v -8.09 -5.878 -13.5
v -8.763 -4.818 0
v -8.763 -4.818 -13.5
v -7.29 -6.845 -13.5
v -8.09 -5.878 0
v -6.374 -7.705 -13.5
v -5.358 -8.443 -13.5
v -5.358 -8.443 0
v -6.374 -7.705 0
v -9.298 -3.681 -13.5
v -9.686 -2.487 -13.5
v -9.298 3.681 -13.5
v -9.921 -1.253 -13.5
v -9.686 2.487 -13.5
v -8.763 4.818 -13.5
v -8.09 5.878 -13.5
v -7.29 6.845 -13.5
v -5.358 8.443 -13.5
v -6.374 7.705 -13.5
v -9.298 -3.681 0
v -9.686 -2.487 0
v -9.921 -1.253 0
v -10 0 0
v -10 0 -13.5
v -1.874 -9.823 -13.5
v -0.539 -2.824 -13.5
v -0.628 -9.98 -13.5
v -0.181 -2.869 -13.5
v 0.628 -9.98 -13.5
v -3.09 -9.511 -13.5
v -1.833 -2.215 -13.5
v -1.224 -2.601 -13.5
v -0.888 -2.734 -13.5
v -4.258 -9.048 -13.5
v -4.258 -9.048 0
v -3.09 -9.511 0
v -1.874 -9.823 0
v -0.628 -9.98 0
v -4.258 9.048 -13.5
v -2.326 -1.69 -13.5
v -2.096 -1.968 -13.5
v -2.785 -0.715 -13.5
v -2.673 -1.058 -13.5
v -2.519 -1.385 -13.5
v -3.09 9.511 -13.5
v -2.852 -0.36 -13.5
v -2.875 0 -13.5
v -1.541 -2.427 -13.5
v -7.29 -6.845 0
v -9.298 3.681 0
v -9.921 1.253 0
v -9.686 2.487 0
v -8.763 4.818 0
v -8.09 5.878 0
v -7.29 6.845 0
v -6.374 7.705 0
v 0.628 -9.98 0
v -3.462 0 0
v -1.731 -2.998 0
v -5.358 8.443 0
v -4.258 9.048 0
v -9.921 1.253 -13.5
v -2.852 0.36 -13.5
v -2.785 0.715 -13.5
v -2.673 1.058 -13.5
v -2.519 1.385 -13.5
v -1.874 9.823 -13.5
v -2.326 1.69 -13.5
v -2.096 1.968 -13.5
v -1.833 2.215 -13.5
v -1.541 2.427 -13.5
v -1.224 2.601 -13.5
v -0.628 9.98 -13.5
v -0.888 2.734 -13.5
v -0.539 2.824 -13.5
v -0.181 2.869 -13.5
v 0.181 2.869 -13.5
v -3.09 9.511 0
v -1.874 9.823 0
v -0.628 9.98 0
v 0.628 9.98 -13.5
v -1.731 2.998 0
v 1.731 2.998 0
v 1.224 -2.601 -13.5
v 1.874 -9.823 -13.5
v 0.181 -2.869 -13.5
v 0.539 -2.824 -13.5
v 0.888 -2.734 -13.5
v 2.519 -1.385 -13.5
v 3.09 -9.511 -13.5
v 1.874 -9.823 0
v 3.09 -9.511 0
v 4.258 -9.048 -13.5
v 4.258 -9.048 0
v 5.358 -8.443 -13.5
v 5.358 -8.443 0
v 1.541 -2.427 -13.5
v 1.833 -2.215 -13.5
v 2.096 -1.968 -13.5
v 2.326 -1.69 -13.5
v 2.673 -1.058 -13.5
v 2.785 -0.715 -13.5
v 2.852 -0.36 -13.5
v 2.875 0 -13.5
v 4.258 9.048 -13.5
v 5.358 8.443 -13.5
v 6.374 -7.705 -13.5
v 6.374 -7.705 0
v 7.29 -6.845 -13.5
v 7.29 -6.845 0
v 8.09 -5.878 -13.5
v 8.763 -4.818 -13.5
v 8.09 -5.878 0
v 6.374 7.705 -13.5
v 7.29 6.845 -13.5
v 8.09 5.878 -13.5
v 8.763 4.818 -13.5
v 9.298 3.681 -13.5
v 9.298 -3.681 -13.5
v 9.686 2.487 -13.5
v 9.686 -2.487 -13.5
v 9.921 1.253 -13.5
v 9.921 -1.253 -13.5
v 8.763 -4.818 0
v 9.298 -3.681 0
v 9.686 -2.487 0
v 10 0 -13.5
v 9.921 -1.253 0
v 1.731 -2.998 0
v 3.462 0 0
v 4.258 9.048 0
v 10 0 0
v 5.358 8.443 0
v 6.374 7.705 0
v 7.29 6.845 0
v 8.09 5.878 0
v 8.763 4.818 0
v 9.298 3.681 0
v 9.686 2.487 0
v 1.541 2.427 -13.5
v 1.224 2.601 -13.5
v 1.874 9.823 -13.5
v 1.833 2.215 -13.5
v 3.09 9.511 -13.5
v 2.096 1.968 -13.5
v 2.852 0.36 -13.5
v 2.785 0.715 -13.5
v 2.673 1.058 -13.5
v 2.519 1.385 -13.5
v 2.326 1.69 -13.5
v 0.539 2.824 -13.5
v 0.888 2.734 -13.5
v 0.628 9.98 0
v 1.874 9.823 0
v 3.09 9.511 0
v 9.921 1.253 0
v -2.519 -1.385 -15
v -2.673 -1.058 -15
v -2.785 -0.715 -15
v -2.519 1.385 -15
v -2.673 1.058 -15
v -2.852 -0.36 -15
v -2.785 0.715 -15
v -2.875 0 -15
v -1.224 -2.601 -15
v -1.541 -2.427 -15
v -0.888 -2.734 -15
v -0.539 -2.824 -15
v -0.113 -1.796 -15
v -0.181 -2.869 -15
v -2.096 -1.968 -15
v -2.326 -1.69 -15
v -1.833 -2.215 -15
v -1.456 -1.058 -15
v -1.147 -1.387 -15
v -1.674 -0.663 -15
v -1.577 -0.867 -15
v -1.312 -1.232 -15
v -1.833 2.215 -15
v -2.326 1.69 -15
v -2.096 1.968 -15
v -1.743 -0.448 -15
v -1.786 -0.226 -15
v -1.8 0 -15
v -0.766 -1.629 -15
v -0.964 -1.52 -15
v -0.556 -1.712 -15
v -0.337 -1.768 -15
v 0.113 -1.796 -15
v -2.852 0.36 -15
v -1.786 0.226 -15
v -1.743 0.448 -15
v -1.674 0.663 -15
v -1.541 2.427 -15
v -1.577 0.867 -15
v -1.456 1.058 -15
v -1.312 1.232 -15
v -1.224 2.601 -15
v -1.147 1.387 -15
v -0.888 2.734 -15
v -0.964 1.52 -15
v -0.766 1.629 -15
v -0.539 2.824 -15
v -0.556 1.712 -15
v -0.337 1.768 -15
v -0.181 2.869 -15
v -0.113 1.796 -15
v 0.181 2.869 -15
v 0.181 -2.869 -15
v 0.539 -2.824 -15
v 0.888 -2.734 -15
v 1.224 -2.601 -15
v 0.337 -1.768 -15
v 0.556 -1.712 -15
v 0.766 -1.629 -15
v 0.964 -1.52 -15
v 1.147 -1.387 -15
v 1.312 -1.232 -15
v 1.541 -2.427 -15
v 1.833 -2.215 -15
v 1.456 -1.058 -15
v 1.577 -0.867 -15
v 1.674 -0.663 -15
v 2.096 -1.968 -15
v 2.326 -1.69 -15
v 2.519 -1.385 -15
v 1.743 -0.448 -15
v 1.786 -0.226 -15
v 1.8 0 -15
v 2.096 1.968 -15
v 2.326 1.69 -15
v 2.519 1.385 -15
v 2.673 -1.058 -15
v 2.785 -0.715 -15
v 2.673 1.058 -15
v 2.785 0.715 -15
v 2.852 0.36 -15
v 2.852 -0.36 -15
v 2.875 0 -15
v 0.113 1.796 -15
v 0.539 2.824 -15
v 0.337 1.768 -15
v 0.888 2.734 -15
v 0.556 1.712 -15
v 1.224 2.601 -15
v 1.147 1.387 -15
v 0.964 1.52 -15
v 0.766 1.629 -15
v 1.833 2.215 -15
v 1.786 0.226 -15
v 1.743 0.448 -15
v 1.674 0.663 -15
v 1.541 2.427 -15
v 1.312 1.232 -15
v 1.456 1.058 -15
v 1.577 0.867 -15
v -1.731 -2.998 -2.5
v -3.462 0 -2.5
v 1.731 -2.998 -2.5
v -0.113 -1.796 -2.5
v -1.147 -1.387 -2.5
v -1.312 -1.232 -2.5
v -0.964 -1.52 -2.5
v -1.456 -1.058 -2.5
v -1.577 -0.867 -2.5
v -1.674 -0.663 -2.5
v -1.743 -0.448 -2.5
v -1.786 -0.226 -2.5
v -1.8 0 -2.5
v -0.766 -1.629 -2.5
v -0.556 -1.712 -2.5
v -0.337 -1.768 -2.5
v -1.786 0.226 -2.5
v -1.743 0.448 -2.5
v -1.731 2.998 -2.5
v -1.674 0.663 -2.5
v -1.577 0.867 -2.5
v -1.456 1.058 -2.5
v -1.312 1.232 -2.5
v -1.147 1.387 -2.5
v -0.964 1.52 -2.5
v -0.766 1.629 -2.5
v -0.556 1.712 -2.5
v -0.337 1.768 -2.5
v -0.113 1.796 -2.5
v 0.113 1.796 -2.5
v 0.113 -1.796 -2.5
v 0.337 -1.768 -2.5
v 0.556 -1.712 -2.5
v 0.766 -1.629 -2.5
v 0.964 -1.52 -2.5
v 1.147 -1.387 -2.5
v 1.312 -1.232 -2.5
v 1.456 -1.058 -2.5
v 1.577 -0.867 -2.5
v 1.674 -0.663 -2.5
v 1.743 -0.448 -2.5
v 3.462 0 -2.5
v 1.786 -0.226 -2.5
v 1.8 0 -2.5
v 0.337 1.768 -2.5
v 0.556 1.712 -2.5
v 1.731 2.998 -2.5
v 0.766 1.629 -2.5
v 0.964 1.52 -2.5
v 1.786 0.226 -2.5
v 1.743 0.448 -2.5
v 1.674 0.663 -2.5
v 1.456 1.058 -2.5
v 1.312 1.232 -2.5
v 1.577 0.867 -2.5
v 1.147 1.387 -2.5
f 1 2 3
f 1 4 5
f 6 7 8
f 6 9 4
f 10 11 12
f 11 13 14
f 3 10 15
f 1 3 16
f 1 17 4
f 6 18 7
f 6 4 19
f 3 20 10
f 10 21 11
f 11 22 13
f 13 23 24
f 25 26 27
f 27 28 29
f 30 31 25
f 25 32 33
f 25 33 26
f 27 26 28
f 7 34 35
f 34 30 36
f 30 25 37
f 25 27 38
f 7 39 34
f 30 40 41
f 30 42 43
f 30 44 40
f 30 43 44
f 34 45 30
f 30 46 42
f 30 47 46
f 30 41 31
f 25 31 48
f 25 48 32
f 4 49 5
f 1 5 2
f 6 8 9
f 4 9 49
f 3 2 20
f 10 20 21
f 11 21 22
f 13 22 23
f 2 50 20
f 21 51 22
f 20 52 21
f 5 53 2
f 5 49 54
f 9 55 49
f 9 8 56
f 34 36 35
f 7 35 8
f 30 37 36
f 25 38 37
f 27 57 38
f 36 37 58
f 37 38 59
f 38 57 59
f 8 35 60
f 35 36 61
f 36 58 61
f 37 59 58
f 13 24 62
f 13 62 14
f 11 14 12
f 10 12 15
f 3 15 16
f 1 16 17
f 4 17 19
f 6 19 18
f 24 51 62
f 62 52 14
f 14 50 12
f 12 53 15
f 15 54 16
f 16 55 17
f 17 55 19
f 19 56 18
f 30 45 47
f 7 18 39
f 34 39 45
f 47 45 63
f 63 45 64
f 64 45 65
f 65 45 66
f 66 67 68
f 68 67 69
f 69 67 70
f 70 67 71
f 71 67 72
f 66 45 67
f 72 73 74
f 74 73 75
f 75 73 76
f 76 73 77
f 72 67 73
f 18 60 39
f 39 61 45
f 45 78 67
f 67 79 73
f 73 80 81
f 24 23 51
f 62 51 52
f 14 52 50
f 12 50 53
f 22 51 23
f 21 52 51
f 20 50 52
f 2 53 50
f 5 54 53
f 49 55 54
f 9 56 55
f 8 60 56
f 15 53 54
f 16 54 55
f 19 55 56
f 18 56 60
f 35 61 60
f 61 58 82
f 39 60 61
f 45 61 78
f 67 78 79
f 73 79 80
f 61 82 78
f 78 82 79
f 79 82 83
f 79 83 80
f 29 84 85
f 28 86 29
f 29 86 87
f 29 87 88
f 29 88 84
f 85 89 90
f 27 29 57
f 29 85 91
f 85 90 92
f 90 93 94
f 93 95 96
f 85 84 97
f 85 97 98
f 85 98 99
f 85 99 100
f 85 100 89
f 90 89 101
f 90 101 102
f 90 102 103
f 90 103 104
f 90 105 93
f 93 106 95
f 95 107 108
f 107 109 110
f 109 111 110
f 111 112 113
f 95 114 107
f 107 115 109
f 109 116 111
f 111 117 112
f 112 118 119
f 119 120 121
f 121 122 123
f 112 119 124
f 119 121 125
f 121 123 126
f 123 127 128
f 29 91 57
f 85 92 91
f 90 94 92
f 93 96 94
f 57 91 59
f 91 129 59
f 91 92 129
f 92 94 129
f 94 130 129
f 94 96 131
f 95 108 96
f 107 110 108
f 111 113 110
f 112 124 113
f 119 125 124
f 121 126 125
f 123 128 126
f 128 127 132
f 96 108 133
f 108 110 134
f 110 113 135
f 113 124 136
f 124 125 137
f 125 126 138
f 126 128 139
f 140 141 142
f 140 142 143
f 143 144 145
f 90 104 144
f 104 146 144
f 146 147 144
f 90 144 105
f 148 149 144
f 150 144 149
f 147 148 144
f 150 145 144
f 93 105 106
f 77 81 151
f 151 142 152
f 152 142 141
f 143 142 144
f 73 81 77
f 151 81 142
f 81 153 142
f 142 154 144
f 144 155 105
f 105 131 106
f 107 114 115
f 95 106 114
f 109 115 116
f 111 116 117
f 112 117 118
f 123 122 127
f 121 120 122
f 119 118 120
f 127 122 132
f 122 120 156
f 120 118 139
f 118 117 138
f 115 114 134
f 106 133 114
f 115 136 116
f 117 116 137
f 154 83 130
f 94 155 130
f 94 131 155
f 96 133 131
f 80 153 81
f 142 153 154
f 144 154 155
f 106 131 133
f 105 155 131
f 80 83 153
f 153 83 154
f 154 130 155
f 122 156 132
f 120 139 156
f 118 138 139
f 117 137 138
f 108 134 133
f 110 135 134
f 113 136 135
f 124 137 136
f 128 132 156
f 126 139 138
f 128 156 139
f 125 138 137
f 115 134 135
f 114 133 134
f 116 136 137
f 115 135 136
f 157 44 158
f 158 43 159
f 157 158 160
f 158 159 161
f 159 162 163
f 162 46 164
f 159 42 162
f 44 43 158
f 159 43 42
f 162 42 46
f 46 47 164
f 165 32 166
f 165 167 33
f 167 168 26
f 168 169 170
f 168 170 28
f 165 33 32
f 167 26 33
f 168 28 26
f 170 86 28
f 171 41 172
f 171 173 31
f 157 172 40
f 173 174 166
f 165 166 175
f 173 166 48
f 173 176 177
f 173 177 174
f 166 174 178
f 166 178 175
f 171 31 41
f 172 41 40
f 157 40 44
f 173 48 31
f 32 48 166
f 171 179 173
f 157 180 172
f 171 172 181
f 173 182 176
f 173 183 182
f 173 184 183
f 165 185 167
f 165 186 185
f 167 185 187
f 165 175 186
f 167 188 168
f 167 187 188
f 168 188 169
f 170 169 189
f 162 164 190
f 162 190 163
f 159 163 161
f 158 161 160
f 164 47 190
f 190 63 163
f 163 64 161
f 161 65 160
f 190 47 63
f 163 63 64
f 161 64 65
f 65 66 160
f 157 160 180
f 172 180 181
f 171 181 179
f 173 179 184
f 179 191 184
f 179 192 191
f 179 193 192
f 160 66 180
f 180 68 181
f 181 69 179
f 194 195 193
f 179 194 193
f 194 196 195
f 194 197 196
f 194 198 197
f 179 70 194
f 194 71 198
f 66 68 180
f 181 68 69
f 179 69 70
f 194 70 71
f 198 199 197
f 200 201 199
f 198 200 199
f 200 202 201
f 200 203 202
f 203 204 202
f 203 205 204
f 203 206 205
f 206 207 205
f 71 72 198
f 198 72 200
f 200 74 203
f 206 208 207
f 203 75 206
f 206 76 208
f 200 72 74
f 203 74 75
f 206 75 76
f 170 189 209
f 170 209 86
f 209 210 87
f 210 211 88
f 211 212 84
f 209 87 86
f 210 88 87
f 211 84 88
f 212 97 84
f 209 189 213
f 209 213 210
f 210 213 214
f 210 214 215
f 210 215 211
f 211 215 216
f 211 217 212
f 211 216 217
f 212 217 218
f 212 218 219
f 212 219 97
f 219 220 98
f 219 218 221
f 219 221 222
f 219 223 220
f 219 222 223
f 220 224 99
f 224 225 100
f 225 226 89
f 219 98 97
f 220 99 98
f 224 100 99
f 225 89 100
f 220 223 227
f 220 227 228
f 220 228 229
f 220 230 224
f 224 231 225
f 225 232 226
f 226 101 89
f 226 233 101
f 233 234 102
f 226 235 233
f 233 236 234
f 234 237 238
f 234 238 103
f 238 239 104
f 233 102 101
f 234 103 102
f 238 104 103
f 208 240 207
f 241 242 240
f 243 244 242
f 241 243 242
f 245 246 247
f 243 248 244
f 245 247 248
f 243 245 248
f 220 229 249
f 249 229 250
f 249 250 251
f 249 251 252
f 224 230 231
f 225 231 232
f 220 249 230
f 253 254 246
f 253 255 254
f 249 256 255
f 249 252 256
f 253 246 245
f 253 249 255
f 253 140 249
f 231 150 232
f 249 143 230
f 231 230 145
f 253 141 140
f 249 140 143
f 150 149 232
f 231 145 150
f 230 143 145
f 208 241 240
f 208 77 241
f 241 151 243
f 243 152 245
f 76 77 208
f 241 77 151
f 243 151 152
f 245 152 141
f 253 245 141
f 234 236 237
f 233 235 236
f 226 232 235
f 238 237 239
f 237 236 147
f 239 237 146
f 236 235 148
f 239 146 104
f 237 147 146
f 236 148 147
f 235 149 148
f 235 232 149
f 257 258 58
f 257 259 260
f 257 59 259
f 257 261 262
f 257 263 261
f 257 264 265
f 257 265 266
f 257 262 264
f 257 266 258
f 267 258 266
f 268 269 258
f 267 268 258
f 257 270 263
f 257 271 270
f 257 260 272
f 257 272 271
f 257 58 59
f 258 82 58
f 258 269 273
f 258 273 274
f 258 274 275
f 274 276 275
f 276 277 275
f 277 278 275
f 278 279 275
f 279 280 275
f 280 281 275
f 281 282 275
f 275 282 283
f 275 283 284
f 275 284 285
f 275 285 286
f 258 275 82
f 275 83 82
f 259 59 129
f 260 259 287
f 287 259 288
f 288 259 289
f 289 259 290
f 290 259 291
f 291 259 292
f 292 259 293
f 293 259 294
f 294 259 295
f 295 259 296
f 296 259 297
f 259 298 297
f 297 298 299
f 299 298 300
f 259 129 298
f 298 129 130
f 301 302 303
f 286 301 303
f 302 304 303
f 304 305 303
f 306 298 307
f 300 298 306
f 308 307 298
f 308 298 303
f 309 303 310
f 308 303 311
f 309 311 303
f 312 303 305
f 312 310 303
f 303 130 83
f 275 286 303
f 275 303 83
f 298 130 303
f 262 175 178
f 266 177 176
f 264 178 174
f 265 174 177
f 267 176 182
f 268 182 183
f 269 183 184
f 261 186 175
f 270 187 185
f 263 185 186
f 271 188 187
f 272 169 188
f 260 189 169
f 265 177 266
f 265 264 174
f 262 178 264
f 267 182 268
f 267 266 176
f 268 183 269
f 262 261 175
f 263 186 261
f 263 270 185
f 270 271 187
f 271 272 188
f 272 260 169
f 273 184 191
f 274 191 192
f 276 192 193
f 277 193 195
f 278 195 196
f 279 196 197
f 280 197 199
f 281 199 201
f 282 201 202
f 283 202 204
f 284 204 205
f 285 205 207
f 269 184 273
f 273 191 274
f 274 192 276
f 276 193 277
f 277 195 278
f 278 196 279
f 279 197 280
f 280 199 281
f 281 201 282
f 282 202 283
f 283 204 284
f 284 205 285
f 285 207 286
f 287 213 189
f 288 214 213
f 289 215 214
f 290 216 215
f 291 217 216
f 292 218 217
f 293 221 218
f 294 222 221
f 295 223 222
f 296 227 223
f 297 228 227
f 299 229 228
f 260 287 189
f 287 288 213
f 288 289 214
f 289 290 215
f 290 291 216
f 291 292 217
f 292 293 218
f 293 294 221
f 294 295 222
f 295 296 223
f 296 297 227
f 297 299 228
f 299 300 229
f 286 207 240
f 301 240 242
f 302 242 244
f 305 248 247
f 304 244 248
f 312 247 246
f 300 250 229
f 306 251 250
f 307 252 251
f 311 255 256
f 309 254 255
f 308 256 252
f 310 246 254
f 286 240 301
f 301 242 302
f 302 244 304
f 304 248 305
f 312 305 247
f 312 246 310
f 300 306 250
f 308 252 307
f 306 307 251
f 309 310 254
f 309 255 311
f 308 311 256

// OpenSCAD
$fn = 50;


difference() {
	union() {
		translate(v = [0, 0, -13.5000000000]) {
			cylinder(h = 13.5000000000, r = 10.0000000000);
		}
		#translate(v = [0, 0, -15.0000000000]) {
			cylinder(h = 15, r = 2.8750000000);
		}
	}
	union() {
		translate(v = [0, 0, 0]) {
			rotate(a = [0, 0, 0]) {
				difference() {
					union() {
						translate(v = [0, 0, -2.5000000000]) {
							linear_extrude(height = 2.5000000000) {
								polygon(points = [[3.4620000000, 0.0000000000], [1.7310000000, 2.9981799479], [-1.7310000000, 2.9981799479], [-3.4620000000, 0.0000000000], [-1.7310000000, -2.9981799479], [1.7310000000, -2.9981799479]]);
							}
						}
					}
					union();
				}
			}
		}
		#translate(v = [0, 0, -100.0000000000]) {
			cylinder(h = 200, r = 1.8000000000);
		}
	}
}
